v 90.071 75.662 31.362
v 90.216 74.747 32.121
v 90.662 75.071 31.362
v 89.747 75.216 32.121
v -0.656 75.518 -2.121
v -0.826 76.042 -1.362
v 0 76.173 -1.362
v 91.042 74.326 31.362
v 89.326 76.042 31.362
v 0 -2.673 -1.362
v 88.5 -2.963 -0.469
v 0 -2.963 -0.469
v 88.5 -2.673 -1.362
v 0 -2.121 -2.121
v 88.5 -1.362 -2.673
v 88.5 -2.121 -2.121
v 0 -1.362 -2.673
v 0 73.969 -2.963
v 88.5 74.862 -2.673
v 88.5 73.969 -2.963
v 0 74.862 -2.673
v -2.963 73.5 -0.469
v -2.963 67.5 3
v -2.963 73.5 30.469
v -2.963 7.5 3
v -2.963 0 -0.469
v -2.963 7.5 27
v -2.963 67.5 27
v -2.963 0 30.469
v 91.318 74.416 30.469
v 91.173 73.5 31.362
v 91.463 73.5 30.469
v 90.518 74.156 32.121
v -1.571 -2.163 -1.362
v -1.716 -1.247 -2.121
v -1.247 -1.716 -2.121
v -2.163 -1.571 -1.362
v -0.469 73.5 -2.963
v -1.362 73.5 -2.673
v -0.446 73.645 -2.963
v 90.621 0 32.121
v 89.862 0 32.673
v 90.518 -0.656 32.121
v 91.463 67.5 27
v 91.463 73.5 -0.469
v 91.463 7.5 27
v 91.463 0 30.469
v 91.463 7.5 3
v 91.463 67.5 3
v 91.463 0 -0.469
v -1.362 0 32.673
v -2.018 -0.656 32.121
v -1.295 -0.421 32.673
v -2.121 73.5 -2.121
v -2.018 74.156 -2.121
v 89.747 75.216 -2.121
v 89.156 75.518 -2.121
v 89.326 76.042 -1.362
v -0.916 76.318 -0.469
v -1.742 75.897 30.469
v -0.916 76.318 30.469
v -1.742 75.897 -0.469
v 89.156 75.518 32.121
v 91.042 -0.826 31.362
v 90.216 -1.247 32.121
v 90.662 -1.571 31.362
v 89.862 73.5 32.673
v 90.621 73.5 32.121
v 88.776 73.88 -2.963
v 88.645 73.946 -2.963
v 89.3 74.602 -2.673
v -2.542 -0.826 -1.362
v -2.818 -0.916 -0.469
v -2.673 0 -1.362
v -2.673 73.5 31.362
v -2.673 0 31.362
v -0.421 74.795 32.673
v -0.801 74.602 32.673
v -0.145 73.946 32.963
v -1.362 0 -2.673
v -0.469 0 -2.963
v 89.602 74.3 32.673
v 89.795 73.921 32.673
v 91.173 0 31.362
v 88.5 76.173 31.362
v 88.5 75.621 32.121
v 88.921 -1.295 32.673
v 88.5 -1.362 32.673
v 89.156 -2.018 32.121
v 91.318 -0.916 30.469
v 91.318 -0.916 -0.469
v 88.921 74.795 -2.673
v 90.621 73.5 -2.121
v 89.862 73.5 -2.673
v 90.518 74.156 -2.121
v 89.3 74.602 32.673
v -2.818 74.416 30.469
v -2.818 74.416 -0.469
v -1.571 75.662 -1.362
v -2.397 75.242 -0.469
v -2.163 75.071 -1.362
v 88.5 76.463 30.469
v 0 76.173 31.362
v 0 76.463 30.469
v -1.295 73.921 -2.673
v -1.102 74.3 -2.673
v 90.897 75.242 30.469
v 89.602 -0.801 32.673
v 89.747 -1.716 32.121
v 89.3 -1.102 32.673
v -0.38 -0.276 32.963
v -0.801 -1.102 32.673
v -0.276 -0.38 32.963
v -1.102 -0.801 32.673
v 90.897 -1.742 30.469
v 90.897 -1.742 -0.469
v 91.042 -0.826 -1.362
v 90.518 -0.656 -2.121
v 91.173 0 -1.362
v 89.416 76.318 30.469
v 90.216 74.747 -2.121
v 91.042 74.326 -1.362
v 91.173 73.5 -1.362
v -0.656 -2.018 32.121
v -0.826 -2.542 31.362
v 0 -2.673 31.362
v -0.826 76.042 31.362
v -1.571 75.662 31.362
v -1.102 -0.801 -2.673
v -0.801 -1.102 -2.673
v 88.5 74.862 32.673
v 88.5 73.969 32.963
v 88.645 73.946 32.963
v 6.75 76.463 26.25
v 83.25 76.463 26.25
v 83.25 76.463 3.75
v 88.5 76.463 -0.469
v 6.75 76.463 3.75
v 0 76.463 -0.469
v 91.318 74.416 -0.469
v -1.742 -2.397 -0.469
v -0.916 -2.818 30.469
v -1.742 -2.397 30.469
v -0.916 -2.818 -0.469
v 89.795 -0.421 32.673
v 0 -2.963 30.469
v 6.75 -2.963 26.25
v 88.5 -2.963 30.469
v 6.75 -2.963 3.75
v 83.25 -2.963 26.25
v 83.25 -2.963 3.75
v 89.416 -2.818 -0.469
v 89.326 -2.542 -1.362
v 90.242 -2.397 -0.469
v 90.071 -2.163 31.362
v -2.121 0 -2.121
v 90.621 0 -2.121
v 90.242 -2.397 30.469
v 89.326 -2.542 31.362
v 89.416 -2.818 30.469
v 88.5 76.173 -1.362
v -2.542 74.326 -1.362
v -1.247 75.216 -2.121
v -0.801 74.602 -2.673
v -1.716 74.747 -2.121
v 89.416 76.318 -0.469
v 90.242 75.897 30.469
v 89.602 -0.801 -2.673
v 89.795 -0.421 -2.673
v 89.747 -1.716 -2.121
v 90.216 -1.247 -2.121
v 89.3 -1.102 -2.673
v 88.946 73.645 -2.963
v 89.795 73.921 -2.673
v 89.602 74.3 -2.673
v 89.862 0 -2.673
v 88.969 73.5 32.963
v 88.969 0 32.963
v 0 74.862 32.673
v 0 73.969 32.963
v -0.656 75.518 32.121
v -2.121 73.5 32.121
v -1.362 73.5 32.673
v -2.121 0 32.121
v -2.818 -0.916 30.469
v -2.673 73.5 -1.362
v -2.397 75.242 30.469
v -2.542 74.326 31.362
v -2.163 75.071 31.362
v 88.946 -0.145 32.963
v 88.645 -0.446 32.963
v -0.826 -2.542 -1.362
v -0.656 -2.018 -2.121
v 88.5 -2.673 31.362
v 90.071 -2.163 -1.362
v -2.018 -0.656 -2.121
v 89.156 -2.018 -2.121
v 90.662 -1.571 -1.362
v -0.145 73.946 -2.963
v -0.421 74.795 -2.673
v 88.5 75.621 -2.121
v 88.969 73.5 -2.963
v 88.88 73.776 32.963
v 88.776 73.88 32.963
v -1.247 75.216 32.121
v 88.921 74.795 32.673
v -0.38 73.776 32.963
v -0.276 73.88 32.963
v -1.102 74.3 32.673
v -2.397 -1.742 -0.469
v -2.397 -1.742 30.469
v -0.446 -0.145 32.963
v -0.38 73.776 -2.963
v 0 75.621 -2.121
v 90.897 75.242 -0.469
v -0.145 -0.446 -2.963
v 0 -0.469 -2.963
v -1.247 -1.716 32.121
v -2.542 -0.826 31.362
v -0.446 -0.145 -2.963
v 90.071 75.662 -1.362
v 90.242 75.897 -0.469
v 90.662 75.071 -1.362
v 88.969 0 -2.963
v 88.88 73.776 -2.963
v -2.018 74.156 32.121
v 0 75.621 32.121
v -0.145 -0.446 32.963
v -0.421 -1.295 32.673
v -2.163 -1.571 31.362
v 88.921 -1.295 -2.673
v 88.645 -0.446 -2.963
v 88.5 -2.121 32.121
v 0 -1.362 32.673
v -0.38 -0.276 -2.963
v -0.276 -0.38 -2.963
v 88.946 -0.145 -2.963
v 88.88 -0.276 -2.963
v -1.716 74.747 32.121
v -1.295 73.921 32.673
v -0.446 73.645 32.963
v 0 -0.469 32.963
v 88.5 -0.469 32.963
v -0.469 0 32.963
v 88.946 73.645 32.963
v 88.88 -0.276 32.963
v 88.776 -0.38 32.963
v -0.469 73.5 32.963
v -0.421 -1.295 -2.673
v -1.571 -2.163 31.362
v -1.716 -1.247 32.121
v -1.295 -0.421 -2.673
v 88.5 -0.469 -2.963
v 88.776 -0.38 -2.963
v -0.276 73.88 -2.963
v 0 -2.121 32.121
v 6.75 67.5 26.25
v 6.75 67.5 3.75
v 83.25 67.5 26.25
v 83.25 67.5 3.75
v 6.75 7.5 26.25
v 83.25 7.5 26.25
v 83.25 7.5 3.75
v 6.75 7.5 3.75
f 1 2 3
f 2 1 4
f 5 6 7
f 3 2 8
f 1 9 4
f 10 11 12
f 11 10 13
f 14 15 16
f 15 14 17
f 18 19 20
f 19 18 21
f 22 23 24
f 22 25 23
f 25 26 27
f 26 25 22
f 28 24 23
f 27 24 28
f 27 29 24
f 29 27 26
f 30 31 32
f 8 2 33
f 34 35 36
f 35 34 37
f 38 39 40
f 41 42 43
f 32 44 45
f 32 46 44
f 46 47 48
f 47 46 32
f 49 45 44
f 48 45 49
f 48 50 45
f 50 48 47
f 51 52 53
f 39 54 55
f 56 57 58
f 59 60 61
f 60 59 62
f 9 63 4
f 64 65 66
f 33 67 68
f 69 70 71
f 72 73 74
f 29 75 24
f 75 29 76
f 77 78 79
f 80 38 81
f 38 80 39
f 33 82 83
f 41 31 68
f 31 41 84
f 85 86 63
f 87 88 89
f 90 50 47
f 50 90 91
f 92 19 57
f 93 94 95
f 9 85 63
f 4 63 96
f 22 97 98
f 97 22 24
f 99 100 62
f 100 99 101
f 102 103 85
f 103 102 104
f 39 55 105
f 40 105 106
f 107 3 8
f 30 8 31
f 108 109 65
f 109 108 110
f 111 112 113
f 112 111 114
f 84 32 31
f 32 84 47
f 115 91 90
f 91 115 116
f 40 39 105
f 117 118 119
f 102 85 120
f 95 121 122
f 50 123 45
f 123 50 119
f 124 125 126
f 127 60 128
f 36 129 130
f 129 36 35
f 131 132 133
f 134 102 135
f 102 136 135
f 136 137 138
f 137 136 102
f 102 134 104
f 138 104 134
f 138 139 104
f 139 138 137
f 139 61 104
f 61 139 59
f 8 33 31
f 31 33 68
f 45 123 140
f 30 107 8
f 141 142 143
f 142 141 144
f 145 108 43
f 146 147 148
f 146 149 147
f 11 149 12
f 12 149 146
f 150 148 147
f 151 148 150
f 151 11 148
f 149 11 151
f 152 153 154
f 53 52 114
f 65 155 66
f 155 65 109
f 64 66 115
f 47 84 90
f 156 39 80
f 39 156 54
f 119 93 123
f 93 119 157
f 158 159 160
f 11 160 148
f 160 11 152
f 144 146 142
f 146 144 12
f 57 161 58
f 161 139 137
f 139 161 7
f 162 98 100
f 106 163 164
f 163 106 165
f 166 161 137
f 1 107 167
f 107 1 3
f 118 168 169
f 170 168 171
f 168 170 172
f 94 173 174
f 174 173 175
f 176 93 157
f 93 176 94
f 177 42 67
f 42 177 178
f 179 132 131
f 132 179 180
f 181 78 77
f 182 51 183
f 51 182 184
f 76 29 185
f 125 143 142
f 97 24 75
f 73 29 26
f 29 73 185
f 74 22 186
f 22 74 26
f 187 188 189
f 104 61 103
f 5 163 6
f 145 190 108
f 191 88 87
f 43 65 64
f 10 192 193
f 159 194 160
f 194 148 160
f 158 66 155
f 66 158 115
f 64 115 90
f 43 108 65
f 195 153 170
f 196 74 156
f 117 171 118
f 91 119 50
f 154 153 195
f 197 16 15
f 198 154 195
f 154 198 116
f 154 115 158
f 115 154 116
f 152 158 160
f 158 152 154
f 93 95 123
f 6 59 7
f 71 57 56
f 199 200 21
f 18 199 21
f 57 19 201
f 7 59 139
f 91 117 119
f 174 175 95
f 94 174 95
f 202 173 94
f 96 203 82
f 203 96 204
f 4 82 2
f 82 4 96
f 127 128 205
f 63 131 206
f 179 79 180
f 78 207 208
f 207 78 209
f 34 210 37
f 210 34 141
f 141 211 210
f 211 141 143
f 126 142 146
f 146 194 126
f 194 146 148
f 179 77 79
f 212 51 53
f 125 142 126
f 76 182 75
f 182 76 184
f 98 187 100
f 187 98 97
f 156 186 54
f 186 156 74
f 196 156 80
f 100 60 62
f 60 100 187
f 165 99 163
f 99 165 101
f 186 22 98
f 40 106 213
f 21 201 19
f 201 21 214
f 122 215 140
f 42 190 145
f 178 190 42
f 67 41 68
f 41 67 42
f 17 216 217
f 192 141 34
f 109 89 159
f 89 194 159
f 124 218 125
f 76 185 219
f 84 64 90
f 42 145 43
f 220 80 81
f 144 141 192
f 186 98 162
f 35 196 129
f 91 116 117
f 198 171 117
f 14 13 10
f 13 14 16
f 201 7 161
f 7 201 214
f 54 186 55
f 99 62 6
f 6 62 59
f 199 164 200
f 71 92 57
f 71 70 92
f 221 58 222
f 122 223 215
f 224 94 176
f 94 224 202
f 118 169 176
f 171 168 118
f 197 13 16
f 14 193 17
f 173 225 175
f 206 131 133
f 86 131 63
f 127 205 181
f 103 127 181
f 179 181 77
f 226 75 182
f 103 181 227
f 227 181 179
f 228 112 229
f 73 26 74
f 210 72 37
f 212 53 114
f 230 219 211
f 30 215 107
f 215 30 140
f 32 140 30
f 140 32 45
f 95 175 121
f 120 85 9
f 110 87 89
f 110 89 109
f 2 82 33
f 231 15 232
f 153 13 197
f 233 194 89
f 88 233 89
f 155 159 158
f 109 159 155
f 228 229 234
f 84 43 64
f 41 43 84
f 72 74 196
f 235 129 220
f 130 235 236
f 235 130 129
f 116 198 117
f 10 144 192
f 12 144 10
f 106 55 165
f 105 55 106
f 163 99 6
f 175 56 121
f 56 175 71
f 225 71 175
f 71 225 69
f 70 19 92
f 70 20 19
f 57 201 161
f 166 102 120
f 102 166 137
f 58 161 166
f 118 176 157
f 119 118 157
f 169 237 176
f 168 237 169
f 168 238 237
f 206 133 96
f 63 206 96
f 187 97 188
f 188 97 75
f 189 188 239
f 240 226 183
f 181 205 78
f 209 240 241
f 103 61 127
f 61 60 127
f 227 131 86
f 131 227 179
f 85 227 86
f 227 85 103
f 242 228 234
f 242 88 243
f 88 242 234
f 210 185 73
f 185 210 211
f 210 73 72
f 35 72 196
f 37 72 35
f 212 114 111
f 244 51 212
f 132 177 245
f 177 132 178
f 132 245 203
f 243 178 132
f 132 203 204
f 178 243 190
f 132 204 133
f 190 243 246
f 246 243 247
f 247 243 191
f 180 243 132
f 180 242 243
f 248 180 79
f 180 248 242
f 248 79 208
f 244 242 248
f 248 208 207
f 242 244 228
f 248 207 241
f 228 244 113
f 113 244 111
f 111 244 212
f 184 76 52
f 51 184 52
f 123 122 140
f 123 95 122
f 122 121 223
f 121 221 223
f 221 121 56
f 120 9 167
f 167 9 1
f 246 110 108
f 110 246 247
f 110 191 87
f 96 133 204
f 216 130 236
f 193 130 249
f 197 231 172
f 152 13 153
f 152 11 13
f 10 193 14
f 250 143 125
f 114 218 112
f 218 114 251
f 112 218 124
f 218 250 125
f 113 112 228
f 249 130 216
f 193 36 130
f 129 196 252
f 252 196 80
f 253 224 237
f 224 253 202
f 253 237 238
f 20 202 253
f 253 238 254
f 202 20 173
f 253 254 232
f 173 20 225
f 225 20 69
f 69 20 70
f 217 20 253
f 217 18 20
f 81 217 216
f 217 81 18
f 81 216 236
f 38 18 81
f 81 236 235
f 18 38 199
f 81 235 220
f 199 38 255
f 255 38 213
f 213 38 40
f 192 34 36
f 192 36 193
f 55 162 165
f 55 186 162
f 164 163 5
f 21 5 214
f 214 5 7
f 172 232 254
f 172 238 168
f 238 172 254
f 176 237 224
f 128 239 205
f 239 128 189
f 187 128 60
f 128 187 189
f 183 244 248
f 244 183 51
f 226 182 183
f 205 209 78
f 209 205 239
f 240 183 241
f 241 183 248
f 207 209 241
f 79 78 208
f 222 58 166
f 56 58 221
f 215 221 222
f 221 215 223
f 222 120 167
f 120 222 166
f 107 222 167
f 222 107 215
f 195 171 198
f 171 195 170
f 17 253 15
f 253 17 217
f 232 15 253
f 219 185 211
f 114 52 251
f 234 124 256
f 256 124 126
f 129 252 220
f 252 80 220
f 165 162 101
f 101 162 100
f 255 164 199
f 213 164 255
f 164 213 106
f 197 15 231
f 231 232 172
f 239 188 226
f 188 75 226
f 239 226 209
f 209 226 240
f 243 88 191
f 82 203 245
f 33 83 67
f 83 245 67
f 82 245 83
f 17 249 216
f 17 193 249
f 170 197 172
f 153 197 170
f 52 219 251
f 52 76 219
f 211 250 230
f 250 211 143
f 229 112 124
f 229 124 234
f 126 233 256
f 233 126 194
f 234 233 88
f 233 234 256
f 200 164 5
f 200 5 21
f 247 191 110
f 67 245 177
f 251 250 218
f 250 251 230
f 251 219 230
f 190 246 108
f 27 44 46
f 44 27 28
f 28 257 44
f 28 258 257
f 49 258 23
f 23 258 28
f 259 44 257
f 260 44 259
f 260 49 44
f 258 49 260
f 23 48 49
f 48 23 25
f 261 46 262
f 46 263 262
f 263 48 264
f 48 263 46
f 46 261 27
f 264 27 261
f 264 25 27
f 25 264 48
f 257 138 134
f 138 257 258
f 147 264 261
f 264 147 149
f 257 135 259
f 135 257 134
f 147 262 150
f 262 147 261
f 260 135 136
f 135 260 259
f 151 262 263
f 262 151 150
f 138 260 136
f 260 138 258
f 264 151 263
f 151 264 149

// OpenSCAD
// file: ../../../../../basics/rounded-edges/rounded-cube/rounded-cube.scad
/**
 *
 *  some parts of this software were inspired by
 *
 * 	     http://www.thingiverse.com/thing:9347
 *
 */

/**
 * makes a rounded cube
 */
module roundedCube(cornerRadius=4,
				   cubeCentered=false,
				   sides=30,
				   sidesOnly=false,
				   size=[20,20,2])
{
    $fn=sides;

    x = size[0] - cornerRadius/2;
    y = size[1] - cornerRadius/2;
    z = size[2];

    minkowski()
    {
        cube(size=[x,y,z], center=cubeCentered);

        if(sidesOnly)
        {
            cylinder(r=cornerRadius);
        }
        else
        {
            sphere(r=cornerRadius);
        }
    };
}
// file: ../../../../../basics/rounded-edges/rounded-cube-enclosure/rounded-cube-enclosure.scad
use <../rounded-cube/rounded-cube.scad>

module roundedCubeEnclosure(boardLengthX,
					 		boardLengthY,
					 		boardLengthZ,
							cornerRadius,
							xAxisCutout_yPercentage,
							xAxisCutout_zPercentage,
							yAxisCutout_xPercentage,
							yAxisCutout_zPercentage)
{
	size = [boardLengthX, boardLengthY, boardLengthZ];

	difference()
	{
		roundedCube(cornerRadius = cornerRadius,
					size=size,
		            sides=5,
		            sides=20);

		// x axis cutout
		xAxisCutout_xLength = boardLengthX * 1.2;
		xAxisCutout_yLength = boardLengthY * xAxisCutout_yPercentage;
		xAxisCutout_zLength = boardLengthZ * xAxisCutout_zPercentage;
		xAxisCutout_xTranslate = -0.09 * boardLengthX;
		xAxisCutout_yTranslate = boardLengthY / 2.0 - xAxisCutout_yLength / 2.0;
		xAxisCutout_zTranslate = boardLengthZ / 2.0 - xAxisCutout_zLength / 2.0;
		color("blue")
		translate([xAxisCutout_xTranslate,
				   xAxisCutout_yTranslate,
				   xAxisCutout_zTranslate])
		cube([xAxisCutout_xLength,
			  xAxisCutout_yLength,
			  xAxisCutout_zLength]);

	  	// y axis cutout
		yAxisCutout_xLength = boardLengthX * yAxisCutout_xPercentage;
		yAxisCutout_yLength = boardLengthY * 1.2;
		yAxisCutout_zLength = boardLengthZ * yAxisCutout_zPercentage;
		yAxisCutout_xTranslate = boardLengthX / 2.0 - yAxisCutout_xLength / 2.0;
		yAxisCutout_yTranslate = boardLengthY / 2.0 - yAxisCutout_yLength / 2.0;
		yAxisCutout_zTranslate = boardLengthZ / 2.0 - yAxisCutout_zLength / 2.0;
		color("green")
		translate([yAxisCutout_xTranslate,
				   yAxisCutout_yTranslate,
				   yAxisCutout_zTranslate])
		cube([yAxisCutout_xLength,
			  yAxisCutout_yLength,
			  yAxisCutout_zLength]);
	}
}
// file: ../../raspberry-pi-enclosure.scad
// this next use statement is from
//         https://github.com/saarbastler/library.scad/blob/master/raspberrypi.scad
//         and
//         https://www.thingiverse.com/thing:2023897
//use </home/roberto/Versioning/group/github/saarbastler/library.scad/raspberrypi.scad>

use <../../../basics/rounded-edges/rounded-cube-enclosure/rounded-cube-enclosure.scad>

module raspberryPiEnclosure()
{
    cornerRadius = 3;
    boardLengthX = 90;
    boardLengthY = 75;
    boardLengthZ = 30;

    roundedCubeEnclosure(boardLengthX = boardLengthX,
                                    boardLengthY = boardLengthY,
                                    boardLengthZ = boardLengthZ,
                                    cornerRadius = cornerRadius,
                                    xAxisCutout_yPercentage = 0.8,
                                    xAxisCutout_zPercentage = 0.8,
                                    yAxisCutout_xPercentage = 0.85,
                                    yAxisCutout_zPercentage = 0.75);

//    raspberryPi3();
}

module raspberryPi3()
{
    xTranslate = 45;
    yTranslate = 38;
    zTranslate = 5;

    translate([xTranslate, yTranslate, zTranslate])
    pi3();
}
// main file
use <../../raspberry-pi-enclosure.scad>

raspberryPiEnclosure();
